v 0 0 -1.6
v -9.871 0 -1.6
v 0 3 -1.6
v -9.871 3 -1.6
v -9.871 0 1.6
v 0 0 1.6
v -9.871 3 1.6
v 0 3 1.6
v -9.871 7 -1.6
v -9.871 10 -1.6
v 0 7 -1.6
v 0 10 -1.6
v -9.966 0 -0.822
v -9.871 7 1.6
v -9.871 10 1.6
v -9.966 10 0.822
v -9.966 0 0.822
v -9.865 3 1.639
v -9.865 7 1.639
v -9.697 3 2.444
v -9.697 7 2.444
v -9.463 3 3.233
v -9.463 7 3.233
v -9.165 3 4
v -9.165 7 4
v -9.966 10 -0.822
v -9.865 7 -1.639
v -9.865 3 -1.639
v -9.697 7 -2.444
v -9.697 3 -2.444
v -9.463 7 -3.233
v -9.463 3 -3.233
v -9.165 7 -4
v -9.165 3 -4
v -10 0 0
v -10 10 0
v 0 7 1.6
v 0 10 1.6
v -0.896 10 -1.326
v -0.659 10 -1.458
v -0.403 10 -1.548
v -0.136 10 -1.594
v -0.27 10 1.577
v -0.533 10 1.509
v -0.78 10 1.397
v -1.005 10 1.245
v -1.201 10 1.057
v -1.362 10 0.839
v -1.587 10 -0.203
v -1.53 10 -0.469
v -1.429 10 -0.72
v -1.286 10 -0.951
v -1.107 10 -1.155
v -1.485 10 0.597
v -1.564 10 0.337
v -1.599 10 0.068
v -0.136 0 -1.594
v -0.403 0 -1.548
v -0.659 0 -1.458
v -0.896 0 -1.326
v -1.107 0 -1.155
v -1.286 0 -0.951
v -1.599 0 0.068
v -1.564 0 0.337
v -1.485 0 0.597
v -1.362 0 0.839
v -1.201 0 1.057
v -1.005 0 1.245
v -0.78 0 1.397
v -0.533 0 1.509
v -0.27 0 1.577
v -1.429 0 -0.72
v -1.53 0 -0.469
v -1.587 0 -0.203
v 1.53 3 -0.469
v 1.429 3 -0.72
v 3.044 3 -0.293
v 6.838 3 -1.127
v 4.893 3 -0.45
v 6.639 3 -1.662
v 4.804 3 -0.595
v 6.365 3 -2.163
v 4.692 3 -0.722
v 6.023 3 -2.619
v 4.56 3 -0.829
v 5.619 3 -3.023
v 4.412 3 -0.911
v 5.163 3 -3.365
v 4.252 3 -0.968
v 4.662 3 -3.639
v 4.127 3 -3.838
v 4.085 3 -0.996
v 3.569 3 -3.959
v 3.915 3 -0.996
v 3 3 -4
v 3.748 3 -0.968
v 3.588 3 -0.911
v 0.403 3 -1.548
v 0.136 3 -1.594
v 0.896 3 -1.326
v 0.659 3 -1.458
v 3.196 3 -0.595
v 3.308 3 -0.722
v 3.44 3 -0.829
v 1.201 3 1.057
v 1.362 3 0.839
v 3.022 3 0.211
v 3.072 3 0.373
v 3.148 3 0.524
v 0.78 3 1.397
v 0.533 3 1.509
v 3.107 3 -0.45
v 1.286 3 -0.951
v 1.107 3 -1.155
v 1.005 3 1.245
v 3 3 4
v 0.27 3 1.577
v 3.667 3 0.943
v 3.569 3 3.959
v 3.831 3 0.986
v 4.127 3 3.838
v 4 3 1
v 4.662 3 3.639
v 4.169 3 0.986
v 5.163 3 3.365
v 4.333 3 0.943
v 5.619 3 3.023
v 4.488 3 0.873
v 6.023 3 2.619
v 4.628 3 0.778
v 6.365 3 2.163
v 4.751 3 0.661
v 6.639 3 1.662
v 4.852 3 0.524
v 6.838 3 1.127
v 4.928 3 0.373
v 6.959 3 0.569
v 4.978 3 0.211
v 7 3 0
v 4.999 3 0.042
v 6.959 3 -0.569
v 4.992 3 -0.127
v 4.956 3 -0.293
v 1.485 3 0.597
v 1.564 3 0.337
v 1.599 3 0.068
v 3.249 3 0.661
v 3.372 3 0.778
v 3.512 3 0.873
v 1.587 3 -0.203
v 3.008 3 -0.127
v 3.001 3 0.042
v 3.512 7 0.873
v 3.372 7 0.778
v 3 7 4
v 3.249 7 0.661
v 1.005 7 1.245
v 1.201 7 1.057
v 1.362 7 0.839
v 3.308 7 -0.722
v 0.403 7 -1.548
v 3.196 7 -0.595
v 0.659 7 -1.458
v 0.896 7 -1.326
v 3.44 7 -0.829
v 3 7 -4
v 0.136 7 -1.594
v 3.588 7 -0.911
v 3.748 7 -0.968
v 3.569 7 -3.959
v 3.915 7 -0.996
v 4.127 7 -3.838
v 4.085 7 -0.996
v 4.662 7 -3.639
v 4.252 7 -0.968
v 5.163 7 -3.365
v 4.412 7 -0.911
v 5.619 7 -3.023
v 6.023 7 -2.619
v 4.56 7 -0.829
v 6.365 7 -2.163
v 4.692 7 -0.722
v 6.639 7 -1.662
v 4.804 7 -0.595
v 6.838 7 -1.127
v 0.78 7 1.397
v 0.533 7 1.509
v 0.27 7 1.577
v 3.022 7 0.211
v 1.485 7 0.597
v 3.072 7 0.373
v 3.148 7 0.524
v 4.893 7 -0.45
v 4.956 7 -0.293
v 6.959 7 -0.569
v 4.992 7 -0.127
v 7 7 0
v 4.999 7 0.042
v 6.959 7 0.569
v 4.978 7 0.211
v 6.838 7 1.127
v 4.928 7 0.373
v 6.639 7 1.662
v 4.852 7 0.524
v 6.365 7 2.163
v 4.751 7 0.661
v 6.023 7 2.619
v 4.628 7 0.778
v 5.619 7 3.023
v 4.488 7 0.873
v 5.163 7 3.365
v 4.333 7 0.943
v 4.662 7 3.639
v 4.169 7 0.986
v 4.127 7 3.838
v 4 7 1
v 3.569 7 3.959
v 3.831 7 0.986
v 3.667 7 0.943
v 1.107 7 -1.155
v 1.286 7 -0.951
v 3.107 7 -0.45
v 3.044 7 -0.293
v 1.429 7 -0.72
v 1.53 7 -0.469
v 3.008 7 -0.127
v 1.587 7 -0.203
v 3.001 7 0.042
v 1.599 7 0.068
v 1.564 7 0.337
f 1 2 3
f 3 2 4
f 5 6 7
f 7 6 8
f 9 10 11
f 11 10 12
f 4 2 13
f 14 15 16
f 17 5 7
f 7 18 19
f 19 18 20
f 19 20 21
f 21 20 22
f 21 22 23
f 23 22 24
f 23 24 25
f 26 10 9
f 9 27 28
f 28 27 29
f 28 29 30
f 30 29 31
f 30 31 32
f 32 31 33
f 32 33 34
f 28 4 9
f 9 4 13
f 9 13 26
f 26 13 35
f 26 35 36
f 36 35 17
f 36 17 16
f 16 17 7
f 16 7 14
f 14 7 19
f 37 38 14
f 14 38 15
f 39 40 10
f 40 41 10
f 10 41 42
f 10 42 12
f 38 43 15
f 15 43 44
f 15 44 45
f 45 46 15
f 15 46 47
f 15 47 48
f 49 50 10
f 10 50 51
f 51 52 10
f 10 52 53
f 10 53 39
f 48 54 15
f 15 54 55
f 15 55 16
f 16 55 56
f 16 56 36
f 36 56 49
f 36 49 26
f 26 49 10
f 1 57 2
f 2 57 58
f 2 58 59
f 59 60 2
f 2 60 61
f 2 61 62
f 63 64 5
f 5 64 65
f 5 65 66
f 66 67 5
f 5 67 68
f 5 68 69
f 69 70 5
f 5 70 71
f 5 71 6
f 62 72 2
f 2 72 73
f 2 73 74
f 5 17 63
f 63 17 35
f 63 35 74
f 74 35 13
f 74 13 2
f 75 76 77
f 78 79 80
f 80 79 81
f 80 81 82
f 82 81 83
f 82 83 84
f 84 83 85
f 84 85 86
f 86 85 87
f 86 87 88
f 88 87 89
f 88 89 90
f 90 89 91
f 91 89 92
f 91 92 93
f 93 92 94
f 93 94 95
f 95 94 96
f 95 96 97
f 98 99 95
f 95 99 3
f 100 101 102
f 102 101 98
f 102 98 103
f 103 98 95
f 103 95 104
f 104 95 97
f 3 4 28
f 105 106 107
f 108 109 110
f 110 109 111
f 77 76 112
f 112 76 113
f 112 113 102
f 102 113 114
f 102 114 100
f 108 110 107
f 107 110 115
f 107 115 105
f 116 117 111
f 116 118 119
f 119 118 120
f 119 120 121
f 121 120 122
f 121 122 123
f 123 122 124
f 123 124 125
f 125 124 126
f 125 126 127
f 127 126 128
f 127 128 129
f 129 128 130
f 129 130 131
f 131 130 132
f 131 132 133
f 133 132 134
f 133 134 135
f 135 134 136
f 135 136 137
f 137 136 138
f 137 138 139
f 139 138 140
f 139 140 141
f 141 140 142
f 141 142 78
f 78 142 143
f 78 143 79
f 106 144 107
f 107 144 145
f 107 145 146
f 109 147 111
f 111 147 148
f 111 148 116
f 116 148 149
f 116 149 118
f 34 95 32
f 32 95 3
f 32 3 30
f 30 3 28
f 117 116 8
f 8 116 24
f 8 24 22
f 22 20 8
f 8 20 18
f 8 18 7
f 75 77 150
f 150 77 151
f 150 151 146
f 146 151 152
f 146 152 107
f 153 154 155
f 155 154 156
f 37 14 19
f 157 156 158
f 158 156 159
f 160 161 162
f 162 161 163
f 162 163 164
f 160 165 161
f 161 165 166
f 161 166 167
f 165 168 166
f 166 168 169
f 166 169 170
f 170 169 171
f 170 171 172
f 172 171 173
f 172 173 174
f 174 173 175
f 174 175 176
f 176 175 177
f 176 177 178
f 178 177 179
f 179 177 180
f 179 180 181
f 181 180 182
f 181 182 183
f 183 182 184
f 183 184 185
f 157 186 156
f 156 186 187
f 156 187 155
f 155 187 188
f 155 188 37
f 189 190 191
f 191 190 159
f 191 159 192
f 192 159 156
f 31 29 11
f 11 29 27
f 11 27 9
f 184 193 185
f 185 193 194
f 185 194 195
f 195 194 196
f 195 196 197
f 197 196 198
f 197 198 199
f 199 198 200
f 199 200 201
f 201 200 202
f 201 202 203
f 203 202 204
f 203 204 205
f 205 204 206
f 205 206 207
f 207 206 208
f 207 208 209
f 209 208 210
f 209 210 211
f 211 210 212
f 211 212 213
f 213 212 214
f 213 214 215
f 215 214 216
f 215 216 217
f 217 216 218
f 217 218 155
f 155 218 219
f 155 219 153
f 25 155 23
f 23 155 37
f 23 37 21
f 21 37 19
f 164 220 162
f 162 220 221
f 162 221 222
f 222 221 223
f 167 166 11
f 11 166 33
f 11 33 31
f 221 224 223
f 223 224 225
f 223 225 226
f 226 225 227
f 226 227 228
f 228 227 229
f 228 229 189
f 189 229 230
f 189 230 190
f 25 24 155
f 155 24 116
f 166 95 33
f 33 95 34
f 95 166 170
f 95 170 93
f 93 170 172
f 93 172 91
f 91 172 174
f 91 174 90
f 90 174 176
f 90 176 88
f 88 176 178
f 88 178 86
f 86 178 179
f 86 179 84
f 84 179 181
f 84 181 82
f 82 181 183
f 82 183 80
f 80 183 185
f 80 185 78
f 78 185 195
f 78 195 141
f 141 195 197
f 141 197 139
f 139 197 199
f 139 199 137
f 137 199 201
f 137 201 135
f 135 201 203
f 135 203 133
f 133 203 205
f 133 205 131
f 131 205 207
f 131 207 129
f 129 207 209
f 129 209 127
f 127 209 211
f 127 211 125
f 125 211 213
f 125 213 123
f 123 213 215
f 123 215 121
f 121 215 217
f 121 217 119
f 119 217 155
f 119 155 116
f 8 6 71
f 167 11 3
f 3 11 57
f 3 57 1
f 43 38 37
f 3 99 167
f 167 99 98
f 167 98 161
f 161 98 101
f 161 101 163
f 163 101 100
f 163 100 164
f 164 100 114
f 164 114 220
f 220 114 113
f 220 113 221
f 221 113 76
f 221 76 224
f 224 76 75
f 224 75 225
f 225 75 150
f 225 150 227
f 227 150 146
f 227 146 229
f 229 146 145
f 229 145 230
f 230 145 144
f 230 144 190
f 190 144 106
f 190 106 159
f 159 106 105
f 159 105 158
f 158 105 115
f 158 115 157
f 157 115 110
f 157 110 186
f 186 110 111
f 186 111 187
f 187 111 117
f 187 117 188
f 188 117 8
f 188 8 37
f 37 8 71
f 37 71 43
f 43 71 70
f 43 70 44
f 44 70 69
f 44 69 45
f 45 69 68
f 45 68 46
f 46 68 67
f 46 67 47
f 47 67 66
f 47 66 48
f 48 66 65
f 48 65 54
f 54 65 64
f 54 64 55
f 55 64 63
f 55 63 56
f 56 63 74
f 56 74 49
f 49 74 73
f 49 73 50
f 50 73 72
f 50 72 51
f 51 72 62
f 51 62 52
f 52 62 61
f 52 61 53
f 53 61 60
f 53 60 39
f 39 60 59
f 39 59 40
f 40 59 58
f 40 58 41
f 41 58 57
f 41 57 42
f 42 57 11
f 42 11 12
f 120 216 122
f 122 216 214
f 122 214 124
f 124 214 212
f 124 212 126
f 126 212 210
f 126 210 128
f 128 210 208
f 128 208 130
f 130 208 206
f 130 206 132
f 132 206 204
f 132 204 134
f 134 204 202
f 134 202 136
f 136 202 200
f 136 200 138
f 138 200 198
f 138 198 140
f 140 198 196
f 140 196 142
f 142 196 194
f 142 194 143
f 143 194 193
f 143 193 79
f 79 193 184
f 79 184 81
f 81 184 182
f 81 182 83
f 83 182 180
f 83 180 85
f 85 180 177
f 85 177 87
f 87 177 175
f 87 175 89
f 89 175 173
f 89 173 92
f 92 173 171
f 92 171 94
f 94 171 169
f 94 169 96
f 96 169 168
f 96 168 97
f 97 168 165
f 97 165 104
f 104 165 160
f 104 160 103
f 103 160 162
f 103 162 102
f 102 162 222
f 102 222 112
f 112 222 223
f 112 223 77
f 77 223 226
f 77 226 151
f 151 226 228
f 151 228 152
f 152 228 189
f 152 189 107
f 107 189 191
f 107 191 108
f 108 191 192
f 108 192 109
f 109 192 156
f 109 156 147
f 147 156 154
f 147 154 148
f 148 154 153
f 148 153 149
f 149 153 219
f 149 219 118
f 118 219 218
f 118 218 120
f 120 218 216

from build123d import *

# Parameters (mm, degrees)
BOSS_EXTRUDE3_DEPTH      = 10
BOSS_EXTRUDE5_DEPTH      = 2
BOSS_EXTRUDE5_DEPTH_BACK = 2
SKETCH4_R                = 1.6
CUT_EXTRUDE1_DEPTH       = 15.696938457
SKETCH5_R                = 1
CUT_EXTRUDE3_DEPTH       = 13.845232579


with BuildPart() as part:
    # Sketch2 → Boss-Extrude3 (new body)
    with BuildSketch(Plane(origin=(0, 0, 0), x_dir=(1, 0, 0), z_dir=(0, 1, 0))):
        with BuildLine():
            Line((0, -1.6), (-9.871170143, -1.6))
            ThreePointArc((-9.871170143, -1.6), (-10, 0), (-9.871170143, 1.6))
            Line((-9.871170143, 1.6), (0, 1.6))
            ThreePointArc((0, 1.6), (1.6, 0), (0, -1.6))
        make_face()
    extrude(amount=BOSS_EXTRUDE3_DEPTH)

    # Sketch3 → Boss-Extrude5 (add, two sides: drawn at the far end of the back side and taken through both)
    with BuildSketch(Plane(origin=(0, 5, 0), x_dir=(1, 0, 0), z_dir=(0, 1, 0)).offset(-BOSS_EXTRUDE5_DEPTH_BACK)):
        with BuildLine():
            Line((3, -4), (-9.16515139, -4))
            ThreePointArc((-9.16515139, -4), (-10, 0), (-9.16515139, 4))
            Line((-9.16515139, 4), (3, 4))
            ThreePointArc((3, 4), (7, 0), (3, -4))
        make_face()
    extrude(amount=BOSS_EXTRUDE5_DEPTH + BOSS_EXTRUDE5_DEPTH_BACK)

    # Sketch4 → Cut-Extrude1 (cut, through all)
    with BuildSketch(Plane(origin=(0, 10, 0), x_dir=(1, 0, 0), z_dir=(0, 1, 0))):
        Circle(SKETCH4_R)
    extrude(amount=-CUT_EXTRUDE1_DEPTH, mode=Mode.SUBTRACT)

    # Sketch5 → Cut-Extrude3 (cut, through all)
    with BuildSketch(Plane(origin=(0, 7, 0), x_dir=(1, 0, 0), z_dir=(0, 1, 0))):
        with Locations((4, 0)):
            Circle(SKETCH5_R)
    extrude(amount=-CUT_EXTRUDE3_DEPTH, mode=Mode.SUBTRACT)


solid = part.part
